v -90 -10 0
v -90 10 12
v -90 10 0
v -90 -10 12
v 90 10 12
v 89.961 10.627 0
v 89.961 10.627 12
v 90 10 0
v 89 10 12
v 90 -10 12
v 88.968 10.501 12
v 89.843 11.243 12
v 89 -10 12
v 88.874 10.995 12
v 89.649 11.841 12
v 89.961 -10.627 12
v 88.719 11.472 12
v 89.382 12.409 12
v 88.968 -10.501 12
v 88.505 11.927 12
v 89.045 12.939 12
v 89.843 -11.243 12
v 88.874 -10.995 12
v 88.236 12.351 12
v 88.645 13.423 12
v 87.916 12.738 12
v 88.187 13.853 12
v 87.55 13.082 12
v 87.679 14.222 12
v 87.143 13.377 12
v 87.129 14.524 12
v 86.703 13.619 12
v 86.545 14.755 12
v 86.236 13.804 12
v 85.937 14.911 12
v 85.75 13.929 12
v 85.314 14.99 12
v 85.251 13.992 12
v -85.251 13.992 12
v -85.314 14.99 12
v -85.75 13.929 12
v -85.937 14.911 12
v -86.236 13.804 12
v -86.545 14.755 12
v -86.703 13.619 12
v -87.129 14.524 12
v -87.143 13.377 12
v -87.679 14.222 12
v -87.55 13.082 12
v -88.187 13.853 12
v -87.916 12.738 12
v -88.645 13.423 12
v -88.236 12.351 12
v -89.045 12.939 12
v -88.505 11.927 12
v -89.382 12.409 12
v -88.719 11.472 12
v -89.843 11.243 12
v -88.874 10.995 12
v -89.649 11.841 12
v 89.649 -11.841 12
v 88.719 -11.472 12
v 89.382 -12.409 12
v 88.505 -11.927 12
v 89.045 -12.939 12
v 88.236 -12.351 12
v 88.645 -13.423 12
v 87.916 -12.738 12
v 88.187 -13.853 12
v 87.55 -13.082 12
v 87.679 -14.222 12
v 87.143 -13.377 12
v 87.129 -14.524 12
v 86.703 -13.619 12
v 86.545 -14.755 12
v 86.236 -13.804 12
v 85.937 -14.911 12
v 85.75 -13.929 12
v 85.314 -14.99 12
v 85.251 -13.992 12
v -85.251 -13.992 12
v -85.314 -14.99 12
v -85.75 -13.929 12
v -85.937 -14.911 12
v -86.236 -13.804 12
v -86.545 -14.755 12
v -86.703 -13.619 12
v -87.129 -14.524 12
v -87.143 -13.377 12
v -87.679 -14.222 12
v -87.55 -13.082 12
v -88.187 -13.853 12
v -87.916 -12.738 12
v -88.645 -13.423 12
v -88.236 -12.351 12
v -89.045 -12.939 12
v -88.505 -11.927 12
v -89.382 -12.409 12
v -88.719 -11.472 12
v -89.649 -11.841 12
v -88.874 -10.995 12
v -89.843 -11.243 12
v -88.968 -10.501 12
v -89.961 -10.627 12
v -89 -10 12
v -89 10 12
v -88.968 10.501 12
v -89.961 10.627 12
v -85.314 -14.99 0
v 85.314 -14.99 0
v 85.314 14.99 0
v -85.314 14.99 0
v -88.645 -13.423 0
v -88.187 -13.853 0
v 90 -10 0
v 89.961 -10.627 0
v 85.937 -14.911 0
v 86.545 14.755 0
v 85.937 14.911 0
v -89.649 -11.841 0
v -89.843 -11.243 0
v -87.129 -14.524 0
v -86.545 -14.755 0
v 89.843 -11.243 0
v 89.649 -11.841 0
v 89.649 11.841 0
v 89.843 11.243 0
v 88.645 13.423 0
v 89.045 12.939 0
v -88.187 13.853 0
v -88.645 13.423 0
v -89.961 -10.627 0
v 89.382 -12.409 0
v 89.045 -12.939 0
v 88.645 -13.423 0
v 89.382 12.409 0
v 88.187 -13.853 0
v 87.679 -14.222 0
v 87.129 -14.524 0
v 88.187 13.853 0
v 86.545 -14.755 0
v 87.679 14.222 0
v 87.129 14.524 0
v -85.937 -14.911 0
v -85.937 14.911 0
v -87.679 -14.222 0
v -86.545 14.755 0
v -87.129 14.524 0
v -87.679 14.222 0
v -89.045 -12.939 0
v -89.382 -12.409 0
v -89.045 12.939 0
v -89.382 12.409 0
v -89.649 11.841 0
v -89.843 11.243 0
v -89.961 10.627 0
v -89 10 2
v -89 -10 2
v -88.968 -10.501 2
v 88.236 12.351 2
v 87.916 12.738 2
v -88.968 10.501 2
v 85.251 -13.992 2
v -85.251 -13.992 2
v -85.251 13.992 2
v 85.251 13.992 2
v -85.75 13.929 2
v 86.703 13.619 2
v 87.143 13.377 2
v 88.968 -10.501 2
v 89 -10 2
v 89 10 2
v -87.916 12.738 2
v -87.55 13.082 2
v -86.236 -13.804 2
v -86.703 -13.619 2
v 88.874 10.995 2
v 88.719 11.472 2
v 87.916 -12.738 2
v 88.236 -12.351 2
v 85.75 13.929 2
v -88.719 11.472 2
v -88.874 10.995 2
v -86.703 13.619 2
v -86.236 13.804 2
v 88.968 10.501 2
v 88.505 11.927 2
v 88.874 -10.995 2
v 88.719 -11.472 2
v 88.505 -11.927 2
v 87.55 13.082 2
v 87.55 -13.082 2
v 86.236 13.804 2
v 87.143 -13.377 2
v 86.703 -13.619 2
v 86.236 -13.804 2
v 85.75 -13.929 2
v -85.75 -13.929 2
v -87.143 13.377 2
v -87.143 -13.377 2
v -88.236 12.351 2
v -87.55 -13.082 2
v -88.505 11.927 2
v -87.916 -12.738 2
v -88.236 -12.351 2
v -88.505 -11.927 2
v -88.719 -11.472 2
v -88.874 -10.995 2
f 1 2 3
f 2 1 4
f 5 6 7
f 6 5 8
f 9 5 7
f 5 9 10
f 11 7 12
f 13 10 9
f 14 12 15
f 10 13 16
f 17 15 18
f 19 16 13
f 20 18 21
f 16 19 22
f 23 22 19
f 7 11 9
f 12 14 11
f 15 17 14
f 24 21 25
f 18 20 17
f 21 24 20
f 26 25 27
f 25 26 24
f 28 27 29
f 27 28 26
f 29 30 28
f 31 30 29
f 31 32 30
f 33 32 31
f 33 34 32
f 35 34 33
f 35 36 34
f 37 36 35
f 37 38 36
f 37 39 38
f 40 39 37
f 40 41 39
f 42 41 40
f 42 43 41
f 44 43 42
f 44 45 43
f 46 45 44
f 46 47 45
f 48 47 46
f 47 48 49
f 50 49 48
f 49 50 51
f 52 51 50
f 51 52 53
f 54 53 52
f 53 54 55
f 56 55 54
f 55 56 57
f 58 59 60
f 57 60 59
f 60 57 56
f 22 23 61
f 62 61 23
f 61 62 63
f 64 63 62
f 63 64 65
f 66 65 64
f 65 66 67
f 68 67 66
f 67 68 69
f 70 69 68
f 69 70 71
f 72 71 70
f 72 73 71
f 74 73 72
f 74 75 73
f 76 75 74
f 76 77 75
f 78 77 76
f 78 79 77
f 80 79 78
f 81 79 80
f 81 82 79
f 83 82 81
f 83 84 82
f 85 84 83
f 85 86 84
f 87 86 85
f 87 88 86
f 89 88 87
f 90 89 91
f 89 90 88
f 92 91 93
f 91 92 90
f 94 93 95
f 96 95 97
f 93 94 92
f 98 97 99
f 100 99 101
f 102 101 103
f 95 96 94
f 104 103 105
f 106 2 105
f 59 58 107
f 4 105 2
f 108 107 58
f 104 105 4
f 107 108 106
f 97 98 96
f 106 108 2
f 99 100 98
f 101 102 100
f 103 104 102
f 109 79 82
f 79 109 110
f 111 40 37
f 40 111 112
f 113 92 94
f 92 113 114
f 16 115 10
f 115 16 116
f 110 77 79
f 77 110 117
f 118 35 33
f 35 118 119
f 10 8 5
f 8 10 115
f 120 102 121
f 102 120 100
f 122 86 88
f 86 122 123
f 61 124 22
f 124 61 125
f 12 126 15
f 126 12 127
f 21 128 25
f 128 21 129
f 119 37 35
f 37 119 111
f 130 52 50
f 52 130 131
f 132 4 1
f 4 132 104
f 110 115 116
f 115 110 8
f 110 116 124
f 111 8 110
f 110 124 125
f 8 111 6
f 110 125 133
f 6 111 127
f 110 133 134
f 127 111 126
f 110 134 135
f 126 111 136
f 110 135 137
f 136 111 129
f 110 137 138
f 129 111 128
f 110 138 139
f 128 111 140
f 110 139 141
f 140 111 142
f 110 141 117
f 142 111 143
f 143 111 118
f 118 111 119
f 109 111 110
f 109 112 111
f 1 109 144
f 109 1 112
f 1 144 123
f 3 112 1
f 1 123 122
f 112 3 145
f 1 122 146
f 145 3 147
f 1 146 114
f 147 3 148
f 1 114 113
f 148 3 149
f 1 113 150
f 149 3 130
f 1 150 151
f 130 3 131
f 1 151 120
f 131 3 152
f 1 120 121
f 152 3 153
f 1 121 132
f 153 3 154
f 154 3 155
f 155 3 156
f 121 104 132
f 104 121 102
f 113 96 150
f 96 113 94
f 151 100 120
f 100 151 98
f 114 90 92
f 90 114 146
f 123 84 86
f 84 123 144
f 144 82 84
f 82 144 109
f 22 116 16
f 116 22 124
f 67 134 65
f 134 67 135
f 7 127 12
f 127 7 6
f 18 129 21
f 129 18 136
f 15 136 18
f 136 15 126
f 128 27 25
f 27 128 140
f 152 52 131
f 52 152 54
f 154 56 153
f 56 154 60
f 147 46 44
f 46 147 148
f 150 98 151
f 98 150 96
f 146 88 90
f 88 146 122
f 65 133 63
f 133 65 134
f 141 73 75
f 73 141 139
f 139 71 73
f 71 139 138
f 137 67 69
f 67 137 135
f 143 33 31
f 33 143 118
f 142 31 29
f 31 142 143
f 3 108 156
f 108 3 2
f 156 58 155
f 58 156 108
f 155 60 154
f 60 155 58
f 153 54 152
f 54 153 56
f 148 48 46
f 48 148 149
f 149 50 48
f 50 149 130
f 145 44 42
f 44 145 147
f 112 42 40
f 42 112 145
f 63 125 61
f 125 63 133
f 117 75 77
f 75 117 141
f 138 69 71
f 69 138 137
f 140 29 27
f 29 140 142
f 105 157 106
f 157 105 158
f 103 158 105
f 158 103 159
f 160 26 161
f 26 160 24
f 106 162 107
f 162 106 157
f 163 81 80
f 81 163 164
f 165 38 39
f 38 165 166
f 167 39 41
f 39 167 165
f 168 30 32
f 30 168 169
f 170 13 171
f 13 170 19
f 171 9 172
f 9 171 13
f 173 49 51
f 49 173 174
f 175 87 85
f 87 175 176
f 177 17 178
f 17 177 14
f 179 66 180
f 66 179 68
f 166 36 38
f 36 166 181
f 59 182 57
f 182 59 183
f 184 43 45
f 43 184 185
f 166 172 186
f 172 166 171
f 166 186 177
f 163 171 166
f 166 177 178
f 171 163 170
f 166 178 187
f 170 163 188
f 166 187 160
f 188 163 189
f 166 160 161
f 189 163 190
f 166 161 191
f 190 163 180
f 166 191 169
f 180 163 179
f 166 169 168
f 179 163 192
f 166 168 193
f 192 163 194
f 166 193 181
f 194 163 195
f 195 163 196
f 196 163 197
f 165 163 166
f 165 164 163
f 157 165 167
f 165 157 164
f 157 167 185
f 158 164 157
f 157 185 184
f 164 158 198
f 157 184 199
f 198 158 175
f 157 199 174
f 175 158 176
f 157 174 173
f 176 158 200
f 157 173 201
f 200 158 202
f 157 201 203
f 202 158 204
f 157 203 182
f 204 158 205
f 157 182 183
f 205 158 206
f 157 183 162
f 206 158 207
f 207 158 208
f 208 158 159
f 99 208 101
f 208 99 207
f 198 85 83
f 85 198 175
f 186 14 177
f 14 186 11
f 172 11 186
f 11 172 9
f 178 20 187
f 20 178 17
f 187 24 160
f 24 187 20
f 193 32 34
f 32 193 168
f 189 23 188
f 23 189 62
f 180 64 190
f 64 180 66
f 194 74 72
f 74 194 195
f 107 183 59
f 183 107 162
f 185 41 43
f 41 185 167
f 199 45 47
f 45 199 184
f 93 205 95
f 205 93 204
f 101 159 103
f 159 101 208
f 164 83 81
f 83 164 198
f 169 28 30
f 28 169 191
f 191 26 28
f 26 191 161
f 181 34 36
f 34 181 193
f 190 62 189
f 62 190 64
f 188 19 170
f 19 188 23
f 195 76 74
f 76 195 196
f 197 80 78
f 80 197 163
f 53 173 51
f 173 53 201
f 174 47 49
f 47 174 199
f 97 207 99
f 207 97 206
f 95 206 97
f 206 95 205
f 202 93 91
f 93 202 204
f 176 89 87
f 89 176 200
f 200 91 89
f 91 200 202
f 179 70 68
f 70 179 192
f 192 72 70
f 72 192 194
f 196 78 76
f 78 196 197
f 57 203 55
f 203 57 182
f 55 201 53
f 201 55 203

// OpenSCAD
$fn = 50;


difference() {
	union() {
		hull() {
			translate(v = [-85.0000000000, 10.0000000000, 0]) {
				cylinder(h = 12, r = 5);
			}
			translate(v = [85.0000000000, 10.0000000000, 0]) {
				cylinder(h = 12, r = 5);
			}
			translate(v = [-85.0000000000, -10.0000000000, 0]) {
				cylinder(h = 12, r = 5);
			}
			translate(v = [85.0000000000, -10.0000000000, 0]) {
				cylinder(h = 12, r = 5);
			}
		}
	}
	union() {
		translate(v = [0, 0, 2]) {
			hull() {
				translate(v = [-85.0000000000, 10.0000000000, 0]) {
					cylinder(h = 10, r = 4);
				}
				translate(v = [85.0000000000, 10.0000000000, 0]) {
					cylinder(h = 10, r = 4);
				}
				translate(v = [-85.0000000000, -10.0000000000, 0]) {
					cylinder(h = 10, r = 4);
				}
				translate(v = [85.0000000000, -10.0000000000, 0]) {
					cylinder(h = 10, r = 4);
				}
			}
		}
	}
}
